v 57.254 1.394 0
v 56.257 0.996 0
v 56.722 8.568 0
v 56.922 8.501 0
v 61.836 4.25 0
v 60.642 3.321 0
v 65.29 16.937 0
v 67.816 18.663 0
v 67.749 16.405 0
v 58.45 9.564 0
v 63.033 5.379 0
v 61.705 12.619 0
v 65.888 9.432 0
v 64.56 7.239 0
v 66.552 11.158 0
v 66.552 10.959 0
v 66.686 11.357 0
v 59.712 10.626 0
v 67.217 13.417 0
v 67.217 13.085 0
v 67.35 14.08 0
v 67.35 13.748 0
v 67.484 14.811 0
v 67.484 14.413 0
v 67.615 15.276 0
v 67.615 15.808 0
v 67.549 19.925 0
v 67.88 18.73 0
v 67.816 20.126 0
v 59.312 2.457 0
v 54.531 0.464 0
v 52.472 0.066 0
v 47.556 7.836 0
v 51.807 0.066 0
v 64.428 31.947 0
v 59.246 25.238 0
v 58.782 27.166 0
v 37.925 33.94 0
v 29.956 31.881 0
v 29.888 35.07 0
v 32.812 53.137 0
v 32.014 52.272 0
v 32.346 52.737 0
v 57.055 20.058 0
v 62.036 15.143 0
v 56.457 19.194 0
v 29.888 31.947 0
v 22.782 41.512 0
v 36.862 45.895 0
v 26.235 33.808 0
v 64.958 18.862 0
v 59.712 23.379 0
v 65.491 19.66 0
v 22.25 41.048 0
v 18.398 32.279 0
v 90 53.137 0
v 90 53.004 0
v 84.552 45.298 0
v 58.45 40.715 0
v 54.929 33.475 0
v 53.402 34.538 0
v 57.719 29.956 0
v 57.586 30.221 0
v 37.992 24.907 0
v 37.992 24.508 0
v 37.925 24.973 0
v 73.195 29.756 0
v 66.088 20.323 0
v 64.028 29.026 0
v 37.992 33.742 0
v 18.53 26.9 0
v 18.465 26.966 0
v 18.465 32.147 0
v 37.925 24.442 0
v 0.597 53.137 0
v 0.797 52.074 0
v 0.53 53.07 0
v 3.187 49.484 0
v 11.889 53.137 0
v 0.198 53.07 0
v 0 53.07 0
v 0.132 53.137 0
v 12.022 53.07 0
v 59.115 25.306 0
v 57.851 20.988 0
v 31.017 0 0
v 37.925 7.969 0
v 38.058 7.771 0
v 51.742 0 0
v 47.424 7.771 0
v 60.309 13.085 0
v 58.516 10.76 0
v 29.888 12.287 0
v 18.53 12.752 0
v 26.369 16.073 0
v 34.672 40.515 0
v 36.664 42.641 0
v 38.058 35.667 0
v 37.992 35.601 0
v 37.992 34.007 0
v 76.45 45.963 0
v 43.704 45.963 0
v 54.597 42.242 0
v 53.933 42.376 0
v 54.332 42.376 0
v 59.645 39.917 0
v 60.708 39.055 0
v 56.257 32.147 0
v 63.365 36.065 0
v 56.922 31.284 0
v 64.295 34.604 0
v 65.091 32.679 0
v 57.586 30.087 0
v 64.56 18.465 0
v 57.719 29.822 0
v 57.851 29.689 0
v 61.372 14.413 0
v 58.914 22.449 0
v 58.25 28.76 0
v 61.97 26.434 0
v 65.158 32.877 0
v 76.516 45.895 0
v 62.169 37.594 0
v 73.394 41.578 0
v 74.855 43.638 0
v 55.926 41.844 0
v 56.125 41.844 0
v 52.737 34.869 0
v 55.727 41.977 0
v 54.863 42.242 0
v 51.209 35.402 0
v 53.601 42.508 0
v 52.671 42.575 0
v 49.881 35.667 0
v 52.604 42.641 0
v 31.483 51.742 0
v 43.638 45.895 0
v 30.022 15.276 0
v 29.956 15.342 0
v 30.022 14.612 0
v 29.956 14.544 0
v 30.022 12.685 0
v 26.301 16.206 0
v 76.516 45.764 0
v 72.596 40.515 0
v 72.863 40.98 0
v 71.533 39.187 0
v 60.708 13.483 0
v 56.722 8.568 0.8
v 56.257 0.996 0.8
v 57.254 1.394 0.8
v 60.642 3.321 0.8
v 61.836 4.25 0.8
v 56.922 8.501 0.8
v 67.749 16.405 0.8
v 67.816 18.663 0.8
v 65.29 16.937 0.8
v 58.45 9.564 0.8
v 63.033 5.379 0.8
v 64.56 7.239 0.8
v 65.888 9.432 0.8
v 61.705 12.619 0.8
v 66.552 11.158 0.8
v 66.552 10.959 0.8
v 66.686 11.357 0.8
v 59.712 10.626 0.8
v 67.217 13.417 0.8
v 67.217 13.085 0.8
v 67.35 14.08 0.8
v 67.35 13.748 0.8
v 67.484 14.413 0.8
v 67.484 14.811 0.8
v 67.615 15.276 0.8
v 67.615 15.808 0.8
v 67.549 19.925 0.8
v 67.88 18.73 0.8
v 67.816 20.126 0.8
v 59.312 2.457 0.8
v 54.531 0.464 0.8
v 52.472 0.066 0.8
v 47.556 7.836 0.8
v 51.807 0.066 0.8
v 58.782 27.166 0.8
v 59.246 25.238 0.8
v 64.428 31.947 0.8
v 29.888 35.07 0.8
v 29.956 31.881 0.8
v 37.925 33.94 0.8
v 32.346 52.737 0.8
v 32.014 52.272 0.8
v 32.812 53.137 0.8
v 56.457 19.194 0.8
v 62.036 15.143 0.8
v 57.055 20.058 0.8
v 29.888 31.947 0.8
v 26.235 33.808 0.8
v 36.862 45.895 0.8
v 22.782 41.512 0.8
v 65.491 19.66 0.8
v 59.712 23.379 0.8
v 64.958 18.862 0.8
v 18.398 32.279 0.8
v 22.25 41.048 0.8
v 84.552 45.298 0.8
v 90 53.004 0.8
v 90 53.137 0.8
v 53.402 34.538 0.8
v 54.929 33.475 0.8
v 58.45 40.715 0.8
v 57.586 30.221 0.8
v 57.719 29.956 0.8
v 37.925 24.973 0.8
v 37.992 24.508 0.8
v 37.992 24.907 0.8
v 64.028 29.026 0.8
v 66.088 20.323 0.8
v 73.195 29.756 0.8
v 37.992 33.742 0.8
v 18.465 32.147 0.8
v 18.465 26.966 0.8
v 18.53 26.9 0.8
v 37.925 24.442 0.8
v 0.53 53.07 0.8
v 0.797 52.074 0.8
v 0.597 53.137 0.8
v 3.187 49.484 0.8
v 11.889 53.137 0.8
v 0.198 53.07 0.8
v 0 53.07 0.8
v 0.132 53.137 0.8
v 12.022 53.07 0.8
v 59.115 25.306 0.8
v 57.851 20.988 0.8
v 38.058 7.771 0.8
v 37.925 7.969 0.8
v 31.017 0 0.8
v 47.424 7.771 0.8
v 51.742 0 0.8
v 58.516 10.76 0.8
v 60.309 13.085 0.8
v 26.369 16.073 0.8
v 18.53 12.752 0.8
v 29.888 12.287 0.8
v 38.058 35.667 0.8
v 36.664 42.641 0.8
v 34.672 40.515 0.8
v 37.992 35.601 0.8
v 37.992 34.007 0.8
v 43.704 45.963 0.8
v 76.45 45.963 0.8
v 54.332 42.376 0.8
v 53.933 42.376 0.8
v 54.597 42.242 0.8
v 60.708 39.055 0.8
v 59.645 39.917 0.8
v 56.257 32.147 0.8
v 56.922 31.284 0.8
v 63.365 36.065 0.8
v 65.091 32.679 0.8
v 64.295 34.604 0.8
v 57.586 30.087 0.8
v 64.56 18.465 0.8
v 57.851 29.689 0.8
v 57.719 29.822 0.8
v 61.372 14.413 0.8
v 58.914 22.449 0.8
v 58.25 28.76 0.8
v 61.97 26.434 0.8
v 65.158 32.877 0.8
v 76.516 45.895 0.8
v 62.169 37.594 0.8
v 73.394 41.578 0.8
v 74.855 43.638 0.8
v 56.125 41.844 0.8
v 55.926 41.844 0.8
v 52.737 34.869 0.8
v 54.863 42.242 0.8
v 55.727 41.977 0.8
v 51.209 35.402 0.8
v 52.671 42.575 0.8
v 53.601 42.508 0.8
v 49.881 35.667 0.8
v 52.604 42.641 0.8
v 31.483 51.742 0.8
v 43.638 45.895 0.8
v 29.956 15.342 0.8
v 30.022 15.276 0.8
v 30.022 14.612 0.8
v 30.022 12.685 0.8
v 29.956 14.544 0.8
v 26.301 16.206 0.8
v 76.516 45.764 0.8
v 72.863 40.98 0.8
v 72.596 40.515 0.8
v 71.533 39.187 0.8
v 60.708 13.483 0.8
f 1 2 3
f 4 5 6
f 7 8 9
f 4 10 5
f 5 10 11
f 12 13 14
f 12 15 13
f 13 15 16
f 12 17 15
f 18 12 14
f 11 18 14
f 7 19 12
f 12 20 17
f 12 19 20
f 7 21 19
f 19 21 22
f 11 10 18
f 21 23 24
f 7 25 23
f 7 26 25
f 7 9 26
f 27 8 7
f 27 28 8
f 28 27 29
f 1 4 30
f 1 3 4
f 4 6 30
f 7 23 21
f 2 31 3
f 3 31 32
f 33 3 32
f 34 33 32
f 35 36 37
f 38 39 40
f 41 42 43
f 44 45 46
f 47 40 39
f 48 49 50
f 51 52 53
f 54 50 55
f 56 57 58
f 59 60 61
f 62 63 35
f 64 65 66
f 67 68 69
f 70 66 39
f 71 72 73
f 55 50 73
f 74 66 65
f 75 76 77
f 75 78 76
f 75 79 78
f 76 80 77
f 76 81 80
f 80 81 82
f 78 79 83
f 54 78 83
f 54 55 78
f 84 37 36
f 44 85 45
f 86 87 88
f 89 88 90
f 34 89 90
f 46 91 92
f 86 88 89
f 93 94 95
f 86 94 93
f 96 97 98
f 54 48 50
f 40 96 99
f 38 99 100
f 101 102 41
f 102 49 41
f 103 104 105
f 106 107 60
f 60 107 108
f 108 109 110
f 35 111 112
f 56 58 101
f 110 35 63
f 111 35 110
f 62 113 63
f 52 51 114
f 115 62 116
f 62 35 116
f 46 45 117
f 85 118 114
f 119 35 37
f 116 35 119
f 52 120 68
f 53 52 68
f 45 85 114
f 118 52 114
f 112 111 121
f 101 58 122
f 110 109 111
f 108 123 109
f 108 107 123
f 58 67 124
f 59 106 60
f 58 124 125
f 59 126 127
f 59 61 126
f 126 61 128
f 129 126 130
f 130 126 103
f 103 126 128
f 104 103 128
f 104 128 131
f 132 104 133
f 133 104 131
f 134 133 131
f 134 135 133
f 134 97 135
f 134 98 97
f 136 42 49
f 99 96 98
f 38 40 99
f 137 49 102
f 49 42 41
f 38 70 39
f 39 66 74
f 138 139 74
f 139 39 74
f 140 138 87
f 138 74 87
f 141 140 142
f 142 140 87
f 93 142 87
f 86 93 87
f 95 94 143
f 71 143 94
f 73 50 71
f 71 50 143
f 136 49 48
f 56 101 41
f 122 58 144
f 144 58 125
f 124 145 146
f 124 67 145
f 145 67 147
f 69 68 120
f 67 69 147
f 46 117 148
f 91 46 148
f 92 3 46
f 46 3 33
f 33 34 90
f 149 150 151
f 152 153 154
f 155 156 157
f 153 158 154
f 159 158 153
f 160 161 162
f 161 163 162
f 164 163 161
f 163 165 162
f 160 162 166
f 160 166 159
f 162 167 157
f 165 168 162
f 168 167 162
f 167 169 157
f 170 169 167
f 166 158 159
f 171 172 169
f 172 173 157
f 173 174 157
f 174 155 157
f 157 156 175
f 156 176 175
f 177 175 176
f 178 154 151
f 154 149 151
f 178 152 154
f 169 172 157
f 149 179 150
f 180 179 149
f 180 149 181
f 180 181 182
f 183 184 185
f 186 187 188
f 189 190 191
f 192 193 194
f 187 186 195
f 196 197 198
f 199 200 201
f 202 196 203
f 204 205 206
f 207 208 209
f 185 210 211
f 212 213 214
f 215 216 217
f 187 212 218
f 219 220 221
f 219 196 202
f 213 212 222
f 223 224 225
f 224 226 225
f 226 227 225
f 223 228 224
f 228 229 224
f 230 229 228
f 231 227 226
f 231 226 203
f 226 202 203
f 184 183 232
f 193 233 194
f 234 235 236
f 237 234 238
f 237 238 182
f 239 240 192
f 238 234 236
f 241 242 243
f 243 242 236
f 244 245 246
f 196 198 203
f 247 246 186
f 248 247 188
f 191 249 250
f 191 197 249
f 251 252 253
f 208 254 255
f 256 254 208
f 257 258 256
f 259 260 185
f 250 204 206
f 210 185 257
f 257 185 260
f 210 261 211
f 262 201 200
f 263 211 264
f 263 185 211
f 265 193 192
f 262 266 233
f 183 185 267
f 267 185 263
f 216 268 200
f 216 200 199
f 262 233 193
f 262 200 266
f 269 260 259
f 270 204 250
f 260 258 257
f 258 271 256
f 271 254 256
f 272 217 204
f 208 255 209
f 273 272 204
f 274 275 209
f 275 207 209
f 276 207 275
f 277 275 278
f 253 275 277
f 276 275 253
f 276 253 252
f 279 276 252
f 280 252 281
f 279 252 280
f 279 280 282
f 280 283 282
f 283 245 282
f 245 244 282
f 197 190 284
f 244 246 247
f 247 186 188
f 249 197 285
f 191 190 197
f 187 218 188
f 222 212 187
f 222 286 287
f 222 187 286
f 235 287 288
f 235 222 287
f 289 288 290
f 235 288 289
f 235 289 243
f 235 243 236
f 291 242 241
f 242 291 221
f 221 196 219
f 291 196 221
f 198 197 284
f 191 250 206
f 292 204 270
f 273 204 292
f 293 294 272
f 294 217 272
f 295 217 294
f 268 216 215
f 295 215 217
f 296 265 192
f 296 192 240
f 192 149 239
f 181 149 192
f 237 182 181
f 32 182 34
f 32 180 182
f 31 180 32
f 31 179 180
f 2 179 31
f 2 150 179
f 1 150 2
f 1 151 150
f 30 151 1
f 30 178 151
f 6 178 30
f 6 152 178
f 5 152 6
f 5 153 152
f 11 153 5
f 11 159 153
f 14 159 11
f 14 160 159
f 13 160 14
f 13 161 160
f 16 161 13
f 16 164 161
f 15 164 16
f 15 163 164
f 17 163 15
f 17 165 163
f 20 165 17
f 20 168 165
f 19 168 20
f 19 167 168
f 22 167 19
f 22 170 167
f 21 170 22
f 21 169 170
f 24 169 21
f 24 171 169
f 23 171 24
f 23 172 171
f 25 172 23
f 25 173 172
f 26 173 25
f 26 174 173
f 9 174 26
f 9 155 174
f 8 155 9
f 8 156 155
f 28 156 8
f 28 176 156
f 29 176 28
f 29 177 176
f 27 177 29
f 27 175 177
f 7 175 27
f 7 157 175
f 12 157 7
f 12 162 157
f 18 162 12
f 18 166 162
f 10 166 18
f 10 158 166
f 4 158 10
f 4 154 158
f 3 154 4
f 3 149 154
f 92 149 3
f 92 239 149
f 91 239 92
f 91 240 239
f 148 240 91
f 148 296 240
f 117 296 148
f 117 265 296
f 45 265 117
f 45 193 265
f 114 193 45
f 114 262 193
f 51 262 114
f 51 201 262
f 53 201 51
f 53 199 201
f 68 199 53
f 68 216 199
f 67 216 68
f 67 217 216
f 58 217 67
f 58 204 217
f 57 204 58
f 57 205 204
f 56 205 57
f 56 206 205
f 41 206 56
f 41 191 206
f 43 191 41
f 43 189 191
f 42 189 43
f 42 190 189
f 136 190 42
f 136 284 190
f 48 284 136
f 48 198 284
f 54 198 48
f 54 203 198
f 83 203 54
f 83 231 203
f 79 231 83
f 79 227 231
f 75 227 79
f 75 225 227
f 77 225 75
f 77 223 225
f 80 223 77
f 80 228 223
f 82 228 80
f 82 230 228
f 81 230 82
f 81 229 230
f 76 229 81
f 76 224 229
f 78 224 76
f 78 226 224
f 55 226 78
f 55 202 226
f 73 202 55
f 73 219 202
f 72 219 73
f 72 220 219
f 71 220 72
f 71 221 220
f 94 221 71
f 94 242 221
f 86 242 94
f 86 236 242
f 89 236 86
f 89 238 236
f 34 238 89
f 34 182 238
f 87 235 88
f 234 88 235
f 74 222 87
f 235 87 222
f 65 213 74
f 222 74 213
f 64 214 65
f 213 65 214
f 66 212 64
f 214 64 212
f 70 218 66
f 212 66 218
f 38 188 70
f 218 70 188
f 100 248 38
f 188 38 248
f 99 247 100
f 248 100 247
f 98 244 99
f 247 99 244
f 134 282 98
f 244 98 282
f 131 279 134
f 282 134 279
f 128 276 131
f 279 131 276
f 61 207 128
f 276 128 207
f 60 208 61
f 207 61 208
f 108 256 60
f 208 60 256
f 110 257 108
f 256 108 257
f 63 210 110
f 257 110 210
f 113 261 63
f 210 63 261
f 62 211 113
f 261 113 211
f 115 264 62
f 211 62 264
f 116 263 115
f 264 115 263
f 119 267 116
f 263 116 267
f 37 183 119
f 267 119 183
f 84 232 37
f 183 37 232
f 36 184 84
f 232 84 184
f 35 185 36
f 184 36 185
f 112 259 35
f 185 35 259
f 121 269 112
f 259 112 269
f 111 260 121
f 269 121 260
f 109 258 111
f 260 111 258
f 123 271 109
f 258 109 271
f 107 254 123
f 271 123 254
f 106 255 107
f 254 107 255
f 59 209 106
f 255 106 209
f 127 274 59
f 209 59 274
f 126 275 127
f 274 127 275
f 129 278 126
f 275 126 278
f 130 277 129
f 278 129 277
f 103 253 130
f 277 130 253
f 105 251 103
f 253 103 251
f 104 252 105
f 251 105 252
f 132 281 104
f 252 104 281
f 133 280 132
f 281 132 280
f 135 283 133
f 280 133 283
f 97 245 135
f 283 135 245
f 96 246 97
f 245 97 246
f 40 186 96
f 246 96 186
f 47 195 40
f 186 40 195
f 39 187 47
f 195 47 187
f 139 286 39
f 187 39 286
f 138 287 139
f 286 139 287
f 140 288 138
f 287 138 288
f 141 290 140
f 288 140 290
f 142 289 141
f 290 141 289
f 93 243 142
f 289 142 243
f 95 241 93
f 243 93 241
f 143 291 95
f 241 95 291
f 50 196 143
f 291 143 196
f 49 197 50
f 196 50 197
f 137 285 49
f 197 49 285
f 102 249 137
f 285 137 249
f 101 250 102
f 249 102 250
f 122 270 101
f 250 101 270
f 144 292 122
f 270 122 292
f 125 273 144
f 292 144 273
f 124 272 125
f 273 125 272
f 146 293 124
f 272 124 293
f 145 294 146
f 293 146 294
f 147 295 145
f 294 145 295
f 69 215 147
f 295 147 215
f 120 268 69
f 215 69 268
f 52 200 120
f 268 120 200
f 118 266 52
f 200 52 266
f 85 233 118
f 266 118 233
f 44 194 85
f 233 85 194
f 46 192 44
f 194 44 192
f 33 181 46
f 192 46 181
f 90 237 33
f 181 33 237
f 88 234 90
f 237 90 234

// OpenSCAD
// file: yd7_outline.scad
// Generated by trace.py from yd7_source.png. Unit width = 1.
yd7_aspect = 0.59041;
module yd7_outline() polygon(points=[[0.00000,0.58967],[0.00886,0.57860],[0.03542,0.54982],[0.20443,0.35867],[0.20517,0.35720],[0.20517,0.29963],[0.20590,0.29889],[0.20590,0.14170],[0.34465,0.00000],[0.57491,0.00000],[0.57565,0.00074],[0.58303,0.00074],[0.60590,0.00517],[0.62509,0.01107],[0.63616,0.01550],[0.65904,0.02731],[0.67380,0.03690],[0.68708,0.04723],[0.70037,0.05978],[0.71734,0.08044],[0.73210,0.10480],[0.73948,0.12177],[0.73948,0.12399],[0.74096,0.12620],[0.74686,0.14539],[0.74686,0.14908],[0.74834,0.15277],[0.74834,0.15646],[0.74982,0.16015],[0.74982,0.16458],[0.75129,0.16974],[0.75129,0.17565],[0.75277,0.18229],[0.75351,0.20738],[0.75424,0.20812],[0.75351,0.22362],[0.75055,0.22140],[0.72546,0.18819],[0.68561,0.14022],[0.66347,0.11808],[0.64945,0.10627],[0.63247,0.09446],[0.63026,0.09520],[0.65018,0.11956],[0.67011,0.14539],[0.67454,0.14982],[0.68192,0.16015],[0.68930,0.16827],[0.71734,0.20517],[0.72177,0.20959],[0.72768,0.21845],[0.73432,0.22583],[0.81328,0.33063],[0.93948,0.50332],[1.00000,0.58893],[1.00000,0.59041],[0.36458,0.59041],[0.35941,0.58598],[0.35572,0.58081],[0.34982,0.57491],[0.25314,0.46125],[0.24723,0.45609],[0.13358,0.58967],[0.13210,0.59041],[0.00664,0.59041],[0.00590,0.58967],[0.00221,0.58967],[0.00148,0.59041],[0.85018,0.50996],[0.85018,0.50849],[0.83173,0.48487],[0.81550,0.46199],[0.80959,0.45535],[0.80664,0.45018],[0.79483,0.43542],[0.71144,0.32251],[0.68856,0.29373],[0.66347,0.25978],[0.65461,0.24945],[0.64280,0.23321],[0.63395,0.22288],[0.62731,0.21328],[0.52841,0.08708],[0.52694,0.08635],[0.42288,0.08635],[0.42140,0.08856],[0.42140,0.27159],[0.42214,0.27232],[0.42214,0.27675],[0.42140,0.27749],[0.42214,0.37491],[0.42140,0.37712],[0.42214,0.37786],[0.42214,0.39557],[0.42288,0.39631],[0.55424,0.39631],[0.56900,0.39336],[0.58598,0.38745],[0.59336,0.38376],[0.61033,0.37196],[0.62509,0.35720],[0.63247,0.34760],[0.63985,0.33579],[0.63985,0.33432],[0.64133,0.33284],[0.64133,0.33137],[0.64280,0.32989],[0.64723,0.31956],[0.65314,0.30185],[0.65683,0.28118],[0.65830,0.28044],[0.71587,0.35498],[0.72325,0.36310],[0.72399,0.36531],[0.71439,0.38450],[0.70406,0.40074],[0.69077,0.41771],[0.67454,0.43395],[0.66273,0.44354],[0.64945,0.45240],[0.62362,0.46494],[0.62140,0.46494],[0.61919,0.46642],[0.60959,0.46937],[0.60664,0.46937],[0.60369,0.47085],[0.59926,0.47085],[0.59557,0.47232],[0.58524,0.47306],[0.58450,0.47380],[0.40738,0.47380],[0.38524,0.45018],[0.33210,0.38967],[0.33210,0.35498],[0.33284,0.35424],[0.33284,0.17048],[0.33358,0.16974],[0.33358,0.16236],[0.33284,0.16162],[0.33358,0.14096],[0.33210,0.13653],[0.29299,0.17860],[0.29225,0.18007],[0.29151,0.37565],[0.40959,0.50996],[0.48487,0.50996],[0.48561,0.51070],[0.84945,0.51070]], paths=[[0,1,2,3,4,5,6,7,8,9,10,11,12,13,14,15,16,17,18,19,20,21,22,23,24,25,26,27,28,29,30,31,32,33,34,35,36,37,38,39,40,41,42,43,44,45,46,47,48,49,50,51,52,53,54,55,56,57,58,59,60,61,62,63,64,65,66,67],[68,69,70,71,72,73,74,75,76,77,78,79,80,81,82,83,84,85,86,87,88,89,90,91,92,93,94,95,96,97,98,99,100,101,102,103,104,105,106,107,108,109,110,111,112,113,114,115,116,117,118,119,120,121,122,123,124,125,126,127,128,129,130,131,132,133,134,135,136,137,138,139,140,141,142,143,144,145,146,147]]);
// main file
// YD7 iron-on TPU logo for T-shirts / hoodies.
// Print flat in TPU, then iron onto fabric through baking paper.
include <yd7_outline.scad>

width     = 90;    // logo width, mm (chest logo ~80-100, back print ~200-250)
thickness = 0.8;   // total height, mm (4 layers @ 0.2); thinner = softer on fabric
mirrored  = false; // true if you place the top side of the print against the fabric

module logo2d()
    mirror([mirrored ? 1 : 0, 0, 0])
        translate([mirrored ? -width : 0, 0])
            scale([width, width]) yd7_outline();

linear_extrude(height = thickness) logo2d();
